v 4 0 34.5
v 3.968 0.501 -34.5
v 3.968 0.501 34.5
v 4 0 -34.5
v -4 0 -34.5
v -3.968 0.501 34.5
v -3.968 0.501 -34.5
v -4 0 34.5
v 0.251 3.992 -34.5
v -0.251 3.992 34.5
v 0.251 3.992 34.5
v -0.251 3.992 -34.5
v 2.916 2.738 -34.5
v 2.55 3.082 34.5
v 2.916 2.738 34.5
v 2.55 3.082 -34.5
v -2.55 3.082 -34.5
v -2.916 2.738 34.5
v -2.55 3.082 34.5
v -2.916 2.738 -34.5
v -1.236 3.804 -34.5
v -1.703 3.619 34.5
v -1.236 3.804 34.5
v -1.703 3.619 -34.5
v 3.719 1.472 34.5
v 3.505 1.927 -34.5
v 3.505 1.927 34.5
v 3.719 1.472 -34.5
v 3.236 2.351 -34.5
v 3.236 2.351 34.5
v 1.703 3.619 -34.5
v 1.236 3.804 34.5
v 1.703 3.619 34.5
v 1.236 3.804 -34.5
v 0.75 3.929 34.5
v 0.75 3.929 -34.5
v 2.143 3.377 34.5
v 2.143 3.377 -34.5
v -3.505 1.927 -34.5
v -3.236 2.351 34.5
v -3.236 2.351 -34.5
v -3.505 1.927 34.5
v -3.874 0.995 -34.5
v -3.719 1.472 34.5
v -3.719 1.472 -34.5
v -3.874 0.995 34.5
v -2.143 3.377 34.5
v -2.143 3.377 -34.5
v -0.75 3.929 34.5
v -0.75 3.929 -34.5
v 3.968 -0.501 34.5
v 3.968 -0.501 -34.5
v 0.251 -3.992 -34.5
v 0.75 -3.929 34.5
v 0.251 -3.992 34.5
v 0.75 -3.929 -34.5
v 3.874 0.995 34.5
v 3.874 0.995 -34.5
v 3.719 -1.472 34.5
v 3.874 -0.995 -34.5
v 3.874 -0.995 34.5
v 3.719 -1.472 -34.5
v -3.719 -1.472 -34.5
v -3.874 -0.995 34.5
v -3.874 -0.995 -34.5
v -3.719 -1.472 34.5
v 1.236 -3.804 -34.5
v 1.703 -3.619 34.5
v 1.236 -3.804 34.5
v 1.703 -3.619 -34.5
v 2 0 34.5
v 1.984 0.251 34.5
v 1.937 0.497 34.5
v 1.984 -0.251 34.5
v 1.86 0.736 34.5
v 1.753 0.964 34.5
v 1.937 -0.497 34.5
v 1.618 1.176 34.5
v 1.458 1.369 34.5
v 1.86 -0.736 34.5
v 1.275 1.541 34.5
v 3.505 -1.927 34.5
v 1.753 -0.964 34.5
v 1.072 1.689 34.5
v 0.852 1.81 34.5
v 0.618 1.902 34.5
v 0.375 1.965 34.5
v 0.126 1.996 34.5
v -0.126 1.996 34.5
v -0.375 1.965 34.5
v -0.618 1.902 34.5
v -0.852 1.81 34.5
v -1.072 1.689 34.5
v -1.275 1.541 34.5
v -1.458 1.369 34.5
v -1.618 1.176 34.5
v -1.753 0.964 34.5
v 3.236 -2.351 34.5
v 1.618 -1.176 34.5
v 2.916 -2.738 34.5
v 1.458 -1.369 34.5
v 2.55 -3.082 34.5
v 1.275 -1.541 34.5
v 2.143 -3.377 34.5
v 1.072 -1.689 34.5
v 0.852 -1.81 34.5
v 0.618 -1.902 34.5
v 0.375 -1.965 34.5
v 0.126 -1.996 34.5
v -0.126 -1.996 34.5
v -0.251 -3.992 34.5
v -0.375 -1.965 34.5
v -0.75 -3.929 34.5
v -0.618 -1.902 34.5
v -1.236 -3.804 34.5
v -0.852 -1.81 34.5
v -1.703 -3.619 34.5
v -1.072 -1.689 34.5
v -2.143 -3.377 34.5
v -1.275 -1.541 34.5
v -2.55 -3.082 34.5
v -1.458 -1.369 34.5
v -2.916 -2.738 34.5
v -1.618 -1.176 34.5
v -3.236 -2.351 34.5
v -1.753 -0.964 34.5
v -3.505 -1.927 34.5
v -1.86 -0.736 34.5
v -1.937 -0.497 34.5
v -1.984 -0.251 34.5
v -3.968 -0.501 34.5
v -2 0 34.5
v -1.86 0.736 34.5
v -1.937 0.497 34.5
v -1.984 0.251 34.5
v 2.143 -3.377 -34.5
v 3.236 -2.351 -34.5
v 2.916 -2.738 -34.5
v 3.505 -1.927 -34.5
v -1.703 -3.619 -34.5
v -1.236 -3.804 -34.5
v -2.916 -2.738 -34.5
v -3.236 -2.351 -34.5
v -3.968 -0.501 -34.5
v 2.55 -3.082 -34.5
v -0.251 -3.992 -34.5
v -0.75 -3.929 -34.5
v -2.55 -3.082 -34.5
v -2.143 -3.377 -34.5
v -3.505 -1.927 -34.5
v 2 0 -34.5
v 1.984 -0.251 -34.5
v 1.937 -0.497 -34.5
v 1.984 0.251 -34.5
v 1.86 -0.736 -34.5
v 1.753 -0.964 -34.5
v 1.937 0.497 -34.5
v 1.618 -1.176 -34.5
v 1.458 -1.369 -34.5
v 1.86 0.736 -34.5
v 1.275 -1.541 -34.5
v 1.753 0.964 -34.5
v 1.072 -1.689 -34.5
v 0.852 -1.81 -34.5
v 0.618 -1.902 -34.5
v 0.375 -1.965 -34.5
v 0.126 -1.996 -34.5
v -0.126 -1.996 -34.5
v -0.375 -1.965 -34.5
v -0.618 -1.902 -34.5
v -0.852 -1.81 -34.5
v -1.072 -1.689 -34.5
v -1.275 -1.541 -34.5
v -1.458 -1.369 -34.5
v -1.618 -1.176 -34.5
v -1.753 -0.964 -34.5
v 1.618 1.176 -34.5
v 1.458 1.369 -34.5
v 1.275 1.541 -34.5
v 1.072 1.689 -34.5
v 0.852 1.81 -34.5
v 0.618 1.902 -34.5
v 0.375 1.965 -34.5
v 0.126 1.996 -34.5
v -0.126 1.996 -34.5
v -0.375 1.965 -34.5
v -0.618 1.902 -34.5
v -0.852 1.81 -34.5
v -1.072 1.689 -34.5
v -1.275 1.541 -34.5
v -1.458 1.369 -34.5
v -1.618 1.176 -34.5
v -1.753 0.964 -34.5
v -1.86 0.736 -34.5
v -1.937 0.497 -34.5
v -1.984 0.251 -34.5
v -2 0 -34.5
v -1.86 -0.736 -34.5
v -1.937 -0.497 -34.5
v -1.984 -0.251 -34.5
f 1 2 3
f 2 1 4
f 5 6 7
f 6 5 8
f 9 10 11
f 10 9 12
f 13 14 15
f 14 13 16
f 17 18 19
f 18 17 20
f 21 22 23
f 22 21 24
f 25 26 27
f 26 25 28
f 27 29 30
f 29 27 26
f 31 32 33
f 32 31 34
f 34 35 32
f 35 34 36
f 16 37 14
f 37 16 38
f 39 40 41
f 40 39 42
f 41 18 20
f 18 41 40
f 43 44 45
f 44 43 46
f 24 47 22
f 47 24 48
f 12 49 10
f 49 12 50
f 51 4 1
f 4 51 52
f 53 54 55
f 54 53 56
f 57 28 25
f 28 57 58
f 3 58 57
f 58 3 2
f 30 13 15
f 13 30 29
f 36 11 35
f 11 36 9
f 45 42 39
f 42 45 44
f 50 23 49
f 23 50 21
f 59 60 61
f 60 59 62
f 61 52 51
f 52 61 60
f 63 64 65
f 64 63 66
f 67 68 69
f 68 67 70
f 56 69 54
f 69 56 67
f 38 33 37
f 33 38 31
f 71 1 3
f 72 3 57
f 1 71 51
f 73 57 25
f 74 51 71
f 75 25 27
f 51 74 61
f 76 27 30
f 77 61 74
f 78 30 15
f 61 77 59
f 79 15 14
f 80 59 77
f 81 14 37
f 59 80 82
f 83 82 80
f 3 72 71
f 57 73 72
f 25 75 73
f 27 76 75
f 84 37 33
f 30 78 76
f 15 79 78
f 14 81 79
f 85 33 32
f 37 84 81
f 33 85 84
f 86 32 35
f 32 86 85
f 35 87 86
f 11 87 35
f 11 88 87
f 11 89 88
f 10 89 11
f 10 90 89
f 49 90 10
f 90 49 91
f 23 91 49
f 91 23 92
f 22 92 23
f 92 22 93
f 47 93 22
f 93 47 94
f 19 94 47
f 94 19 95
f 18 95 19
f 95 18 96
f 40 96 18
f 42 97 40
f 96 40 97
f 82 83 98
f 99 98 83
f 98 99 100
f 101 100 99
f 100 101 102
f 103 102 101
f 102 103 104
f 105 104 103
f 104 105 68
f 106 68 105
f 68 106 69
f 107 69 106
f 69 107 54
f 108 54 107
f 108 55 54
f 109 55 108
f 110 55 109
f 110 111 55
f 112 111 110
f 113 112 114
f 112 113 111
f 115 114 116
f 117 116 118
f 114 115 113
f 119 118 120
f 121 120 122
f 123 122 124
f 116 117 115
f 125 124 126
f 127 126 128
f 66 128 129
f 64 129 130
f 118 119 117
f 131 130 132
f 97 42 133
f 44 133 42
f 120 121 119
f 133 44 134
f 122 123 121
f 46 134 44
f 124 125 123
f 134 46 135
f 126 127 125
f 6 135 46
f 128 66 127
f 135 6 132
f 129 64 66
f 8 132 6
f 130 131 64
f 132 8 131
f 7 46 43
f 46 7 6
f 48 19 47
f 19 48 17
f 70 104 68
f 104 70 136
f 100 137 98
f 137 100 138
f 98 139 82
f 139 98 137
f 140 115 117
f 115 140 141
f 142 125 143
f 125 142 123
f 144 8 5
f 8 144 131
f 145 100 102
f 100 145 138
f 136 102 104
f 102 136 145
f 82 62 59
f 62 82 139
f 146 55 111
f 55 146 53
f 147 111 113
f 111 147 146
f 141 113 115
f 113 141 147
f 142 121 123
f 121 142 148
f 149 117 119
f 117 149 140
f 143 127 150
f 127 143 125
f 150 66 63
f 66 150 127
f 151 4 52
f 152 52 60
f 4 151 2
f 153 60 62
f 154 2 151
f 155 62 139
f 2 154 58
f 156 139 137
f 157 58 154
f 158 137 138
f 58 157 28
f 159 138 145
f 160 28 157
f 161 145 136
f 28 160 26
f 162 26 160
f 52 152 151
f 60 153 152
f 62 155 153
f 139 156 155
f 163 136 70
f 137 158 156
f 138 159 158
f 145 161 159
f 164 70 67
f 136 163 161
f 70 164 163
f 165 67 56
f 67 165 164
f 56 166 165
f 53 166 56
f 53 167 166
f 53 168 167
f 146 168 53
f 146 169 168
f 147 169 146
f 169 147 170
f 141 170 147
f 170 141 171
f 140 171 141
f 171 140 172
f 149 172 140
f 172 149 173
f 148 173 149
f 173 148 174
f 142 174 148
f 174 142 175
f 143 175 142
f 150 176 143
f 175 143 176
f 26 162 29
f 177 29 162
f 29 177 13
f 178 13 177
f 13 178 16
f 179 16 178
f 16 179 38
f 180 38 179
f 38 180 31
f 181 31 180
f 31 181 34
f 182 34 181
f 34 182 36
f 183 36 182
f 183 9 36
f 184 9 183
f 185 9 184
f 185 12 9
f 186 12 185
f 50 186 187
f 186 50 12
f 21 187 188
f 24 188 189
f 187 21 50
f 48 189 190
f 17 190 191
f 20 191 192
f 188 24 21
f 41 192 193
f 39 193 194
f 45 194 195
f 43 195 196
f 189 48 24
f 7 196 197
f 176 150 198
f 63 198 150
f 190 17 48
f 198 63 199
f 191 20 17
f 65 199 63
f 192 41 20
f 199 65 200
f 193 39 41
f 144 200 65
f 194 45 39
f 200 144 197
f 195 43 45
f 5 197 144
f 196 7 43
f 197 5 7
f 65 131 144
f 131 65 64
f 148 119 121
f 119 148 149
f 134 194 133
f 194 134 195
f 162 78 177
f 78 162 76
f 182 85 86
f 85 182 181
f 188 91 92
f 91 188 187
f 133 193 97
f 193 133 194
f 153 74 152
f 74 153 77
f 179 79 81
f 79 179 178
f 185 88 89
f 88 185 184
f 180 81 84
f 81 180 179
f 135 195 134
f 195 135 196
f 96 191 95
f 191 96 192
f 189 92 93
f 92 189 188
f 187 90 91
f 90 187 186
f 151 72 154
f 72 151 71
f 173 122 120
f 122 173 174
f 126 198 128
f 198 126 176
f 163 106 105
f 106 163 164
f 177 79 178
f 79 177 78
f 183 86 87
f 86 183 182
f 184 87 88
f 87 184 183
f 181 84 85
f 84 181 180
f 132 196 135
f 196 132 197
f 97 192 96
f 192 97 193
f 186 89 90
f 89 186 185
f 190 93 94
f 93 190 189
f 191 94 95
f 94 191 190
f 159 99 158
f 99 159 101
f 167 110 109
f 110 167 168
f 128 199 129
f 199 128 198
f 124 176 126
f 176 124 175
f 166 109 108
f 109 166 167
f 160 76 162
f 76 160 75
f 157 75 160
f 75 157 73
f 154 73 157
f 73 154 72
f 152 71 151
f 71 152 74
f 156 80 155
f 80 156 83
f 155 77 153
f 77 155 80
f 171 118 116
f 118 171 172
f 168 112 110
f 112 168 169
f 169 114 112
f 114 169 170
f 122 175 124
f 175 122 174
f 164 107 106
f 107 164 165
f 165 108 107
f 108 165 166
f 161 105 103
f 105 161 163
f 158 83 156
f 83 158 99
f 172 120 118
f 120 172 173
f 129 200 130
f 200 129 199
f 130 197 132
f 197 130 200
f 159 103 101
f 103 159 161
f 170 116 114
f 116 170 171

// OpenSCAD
$fn = 50;


difference() {
	union() {
		translate(v = [0, 0, -34.5000000000]) {
			cylinder(h = 69, r = 4.0000000000);
		}
	}
	union() {
		translate(v = [0, 0, -100.0000000000]) {
			cylinder(h = 200, r = 2.0000000000);
		}
	}
}
